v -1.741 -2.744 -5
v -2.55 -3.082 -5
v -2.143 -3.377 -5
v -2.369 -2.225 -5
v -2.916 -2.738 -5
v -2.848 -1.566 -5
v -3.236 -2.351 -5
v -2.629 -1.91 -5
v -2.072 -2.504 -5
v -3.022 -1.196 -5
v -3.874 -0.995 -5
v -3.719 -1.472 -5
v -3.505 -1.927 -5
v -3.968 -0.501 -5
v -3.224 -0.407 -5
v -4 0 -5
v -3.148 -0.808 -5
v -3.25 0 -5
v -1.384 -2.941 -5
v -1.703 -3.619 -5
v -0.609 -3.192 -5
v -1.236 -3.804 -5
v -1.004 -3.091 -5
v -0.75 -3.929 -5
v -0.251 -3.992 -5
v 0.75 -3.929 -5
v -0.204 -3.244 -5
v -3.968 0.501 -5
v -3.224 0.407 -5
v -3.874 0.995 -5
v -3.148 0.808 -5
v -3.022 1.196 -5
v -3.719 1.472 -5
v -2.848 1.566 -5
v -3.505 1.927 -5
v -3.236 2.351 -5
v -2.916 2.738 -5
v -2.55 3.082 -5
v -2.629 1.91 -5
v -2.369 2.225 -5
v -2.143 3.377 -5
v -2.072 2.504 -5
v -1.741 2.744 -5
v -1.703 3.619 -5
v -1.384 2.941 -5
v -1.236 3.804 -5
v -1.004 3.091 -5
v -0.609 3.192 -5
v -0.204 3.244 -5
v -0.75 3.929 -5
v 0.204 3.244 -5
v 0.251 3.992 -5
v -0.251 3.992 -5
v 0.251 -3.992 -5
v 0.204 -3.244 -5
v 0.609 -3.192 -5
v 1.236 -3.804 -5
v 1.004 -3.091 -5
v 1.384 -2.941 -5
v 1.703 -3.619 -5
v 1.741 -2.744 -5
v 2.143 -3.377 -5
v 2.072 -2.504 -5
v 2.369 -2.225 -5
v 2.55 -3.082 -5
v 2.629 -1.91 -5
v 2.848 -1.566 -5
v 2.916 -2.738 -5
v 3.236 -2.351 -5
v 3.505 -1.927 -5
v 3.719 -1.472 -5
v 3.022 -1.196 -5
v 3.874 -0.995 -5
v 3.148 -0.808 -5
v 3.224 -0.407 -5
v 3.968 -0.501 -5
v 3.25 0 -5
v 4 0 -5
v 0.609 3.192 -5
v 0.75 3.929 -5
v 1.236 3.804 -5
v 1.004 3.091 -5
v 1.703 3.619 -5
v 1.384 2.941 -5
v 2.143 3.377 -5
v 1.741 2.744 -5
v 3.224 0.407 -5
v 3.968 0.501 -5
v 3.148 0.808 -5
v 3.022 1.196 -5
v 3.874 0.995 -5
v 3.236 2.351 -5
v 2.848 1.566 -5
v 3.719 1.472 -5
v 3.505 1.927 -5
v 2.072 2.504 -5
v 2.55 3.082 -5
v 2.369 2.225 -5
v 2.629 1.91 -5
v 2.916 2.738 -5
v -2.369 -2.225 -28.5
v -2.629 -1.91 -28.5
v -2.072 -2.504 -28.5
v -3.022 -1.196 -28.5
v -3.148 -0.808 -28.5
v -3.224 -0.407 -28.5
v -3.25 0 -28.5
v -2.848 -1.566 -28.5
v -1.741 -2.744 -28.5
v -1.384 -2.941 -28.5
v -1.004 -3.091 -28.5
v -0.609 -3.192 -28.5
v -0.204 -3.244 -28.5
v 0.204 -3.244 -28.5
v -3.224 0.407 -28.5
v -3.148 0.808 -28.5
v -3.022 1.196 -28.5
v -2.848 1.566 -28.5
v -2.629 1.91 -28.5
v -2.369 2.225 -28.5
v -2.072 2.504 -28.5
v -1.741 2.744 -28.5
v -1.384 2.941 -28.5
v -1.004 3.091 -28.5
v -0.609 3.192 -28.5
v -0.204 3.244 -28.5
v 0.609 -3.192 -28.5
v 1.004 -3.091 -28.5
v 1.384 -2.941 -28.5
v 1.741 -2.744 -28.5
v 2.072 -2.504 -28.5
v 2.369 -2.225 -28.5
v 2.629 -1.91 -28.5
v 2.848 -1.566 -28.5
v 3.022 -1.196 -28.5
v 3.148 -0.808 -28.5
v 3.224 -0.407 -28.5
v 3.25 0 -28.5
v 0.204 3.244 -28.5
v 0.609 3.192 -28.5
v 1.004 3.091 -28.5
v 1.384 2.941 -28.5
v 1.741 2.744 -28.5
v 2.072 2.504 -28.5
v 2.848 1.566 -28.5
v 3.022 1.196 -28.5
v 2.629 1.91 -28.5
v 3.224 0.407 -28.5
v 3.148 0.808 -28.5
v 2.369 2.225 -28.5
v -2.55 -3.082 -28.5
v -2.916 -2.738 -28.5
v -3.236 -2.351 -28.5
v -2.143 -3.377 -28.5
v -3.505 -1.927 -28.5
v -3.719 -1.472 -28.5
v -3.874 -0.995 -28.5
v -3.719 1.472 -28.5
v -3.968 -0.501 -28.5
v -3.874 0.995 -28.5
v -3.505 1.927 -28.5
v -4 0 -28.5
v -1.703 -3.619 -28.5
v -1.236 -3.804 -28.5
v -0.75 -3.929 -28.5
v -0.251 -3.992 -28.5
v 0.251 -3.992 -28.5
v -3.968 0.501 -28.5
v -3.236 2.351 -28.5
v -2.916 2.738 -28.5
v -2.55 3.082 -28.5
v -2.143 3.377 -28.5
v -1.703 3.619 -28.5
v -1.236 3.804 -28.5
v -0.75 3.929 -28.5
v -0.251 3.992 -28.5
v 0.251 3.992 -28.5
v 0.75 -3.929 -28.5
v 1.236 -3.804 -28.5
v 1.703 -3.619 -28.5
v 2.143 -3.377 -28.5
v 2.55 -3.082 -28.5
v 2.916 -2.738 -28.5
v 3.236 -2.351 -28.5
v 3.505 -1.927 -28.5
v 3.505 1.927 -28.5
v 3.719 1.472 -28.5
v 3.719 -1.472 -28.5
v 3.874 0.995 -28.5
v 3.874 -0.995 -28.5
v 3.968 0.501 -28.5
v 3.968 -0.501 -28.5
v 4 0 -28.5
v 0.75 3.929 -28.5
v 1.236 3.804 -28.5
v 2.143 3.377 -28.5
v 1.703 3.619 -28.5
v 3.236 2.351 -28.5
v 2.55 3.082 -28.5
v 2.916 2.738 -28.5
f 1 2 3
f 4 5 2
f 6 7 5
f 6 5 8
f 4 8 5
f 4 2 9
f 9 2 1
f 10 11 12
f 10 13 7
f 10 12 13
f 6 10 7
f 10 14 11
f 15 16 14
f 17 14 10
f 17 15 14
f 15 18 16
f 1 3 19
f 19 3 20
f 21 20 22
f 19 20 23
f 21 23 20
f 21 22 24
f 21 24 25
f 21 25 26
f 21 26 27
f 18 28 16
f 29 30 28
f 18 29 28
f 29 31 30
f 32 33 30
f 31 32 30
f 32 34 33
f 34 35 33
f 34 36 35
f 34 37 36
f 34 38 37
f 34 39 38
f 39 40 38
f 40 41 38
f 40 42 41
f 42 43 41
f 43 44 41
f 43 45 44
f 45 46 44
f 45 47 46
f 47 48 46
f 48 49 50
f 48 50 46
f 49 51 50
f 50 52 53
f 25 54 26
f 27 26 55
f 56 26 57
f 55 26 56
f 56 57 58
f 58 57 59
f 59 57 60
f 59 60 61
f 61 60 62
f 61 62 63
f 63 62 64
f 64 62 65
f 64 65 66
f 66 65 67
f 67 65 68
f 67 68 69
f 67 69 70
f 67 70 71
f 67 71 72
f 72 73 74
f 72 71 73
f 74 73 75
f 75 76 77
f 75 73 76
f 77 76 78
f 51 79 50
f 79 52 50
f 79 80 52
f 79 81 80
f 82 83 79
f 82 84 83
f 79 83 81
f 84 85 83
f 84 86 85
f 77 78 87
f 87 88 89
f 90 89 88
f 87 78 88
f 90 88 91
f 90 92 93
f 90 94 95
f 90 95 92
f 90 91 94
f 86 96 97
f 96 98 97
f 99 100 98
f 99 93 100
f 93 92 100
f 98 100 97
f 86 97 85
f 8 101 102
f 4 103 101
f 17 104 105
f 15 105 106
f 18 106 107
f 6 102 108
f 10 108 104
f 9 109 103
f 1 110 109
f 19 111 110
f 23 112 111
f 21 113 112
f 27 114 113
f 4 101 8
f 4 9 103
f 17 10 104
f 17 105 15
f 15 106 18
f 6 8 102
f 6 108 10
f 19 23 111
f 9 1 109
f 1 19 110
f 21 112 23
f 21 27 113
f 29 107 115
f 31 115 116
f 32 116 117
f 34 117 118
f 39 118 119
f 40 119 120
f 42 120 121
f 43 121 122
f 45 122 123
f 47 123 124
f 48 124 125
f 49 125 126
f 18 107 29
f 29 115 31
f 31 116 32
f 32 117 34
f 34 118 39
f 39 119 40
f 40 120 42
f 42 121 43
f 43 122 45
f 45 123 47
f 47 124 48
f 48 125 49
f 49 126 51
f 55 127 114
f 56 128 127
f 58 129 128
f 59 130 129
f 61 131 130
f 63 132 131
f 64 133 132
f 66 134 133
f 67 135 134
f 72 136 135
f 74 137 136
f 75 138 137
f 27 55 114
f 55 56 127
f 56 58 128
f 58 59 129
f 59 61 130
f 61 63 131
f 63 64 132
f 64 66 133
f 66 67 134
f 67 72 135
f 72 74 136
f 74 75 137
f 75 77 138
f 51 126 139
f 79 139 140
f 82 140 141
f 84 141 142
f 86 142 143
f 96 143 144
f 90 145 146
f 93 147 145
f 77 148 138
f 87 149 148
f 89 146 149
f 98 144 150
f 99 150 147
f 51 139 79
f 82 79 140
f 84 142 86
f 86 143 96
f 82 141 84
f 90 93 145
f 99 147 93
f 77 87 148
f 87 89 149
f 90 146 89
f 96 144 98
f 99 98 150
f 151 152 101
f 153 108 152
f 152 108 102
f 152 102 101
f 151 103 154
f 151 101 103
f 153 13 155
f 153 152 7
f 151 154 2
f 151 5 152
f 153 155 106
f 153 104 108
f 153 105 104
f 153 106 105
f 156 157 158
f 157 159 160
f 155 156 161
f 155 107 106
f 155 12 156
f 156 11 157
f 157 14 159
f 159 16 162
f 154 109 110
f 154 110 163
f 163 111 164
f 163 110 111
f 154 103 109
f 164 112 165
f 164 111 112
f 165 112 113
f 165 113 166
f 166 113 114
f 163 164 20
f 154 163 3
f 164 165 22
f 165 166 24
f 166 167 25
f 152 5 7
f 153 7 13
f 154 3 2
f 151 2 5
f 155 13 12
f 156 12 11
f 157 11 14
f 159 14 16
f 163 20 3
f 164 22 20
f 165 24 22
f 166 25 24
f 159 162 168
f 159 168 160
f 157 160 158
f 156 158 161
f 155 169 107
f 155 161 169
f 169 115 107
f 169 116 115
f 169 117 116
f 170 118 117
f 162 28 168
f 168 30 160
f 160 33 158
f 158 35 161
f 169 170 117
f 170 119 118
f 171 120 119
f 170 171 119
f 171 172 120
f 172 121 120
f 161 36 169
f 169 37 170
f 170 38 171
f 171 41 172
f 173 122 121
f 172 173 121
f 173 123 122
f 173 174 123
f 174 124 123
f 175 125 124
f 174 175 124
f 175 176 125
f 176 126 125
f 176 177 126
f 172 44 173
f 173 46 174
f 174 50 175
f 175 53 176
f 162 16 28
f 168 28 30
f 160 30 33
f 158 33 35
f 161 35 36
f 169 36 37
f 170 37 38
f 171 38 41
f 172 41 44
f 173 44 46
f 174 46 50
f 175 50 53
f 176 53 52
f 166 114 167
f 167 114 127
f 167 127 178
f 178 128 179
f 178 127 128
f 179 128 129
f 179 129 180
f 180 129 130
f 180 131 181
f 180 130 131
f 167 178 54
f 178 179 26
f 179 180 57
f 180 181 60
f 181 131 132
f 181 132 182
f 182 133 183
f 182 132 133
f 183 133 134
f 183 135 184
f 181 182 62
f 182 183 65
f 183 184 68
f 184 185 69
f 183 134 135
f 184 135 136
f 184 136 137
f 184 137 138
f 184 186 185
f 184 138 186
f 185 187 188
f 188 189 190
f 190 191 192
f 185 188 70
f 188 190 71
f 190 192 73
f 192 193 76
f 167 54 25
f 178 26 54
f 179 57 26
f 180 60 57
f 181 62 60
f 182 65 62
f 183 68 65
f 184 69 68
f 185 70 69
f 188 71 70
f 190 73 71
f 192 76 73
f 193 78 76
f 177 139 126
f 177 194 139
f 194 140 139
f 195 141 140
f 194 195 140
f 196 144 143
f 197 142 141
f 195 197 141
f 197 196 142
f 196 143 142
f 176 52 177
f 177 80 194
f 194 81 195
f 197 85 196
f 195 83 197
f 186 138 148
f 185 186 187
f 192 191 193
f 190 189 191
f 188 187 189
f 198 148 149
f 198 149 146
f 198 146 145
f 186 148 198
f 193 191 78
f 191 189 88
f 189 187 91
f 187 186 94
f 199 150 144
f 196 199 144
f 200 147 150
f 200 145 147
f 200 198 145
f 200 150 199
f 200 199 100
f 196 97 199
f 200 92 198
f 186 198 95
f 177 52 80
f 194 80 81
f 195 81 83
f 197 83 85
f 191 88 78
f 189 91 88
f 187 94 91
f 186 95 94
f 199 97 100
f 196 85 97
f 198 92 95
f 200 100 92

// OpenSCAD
$fn = 50;

difference() {
	union() {
		translate(v = [0, 0, -28.5]) {
			cylinder(h = 28.5, r = 4.0);
		}
	}
	union() {
		translate(v = [0, 0, 0]) {
			rotate(a = [0, 0, 0]) {
				difference() {
					union() {
						translate(v = [0, 0, -5]) {
							linear_extrude(height = 5) {
								polygon(points = [[5.914249999999999, 0.0], [2.957125, 5.1218907443321156], [-2.9571249999999982, 5.1218907443321156], [-5.914249999999999, 7.242867331857232e-16], [-2.9571250000000022, -5.121890744332115], [2.9571249999999956, -5.121890744332118]]);
							}
						}
					}
					union();
				}
			}
		}
		#translate(v = [0, 0, -100.0]) {
			cylinder(h = 200, r = 3.25);
		}
	}
}
